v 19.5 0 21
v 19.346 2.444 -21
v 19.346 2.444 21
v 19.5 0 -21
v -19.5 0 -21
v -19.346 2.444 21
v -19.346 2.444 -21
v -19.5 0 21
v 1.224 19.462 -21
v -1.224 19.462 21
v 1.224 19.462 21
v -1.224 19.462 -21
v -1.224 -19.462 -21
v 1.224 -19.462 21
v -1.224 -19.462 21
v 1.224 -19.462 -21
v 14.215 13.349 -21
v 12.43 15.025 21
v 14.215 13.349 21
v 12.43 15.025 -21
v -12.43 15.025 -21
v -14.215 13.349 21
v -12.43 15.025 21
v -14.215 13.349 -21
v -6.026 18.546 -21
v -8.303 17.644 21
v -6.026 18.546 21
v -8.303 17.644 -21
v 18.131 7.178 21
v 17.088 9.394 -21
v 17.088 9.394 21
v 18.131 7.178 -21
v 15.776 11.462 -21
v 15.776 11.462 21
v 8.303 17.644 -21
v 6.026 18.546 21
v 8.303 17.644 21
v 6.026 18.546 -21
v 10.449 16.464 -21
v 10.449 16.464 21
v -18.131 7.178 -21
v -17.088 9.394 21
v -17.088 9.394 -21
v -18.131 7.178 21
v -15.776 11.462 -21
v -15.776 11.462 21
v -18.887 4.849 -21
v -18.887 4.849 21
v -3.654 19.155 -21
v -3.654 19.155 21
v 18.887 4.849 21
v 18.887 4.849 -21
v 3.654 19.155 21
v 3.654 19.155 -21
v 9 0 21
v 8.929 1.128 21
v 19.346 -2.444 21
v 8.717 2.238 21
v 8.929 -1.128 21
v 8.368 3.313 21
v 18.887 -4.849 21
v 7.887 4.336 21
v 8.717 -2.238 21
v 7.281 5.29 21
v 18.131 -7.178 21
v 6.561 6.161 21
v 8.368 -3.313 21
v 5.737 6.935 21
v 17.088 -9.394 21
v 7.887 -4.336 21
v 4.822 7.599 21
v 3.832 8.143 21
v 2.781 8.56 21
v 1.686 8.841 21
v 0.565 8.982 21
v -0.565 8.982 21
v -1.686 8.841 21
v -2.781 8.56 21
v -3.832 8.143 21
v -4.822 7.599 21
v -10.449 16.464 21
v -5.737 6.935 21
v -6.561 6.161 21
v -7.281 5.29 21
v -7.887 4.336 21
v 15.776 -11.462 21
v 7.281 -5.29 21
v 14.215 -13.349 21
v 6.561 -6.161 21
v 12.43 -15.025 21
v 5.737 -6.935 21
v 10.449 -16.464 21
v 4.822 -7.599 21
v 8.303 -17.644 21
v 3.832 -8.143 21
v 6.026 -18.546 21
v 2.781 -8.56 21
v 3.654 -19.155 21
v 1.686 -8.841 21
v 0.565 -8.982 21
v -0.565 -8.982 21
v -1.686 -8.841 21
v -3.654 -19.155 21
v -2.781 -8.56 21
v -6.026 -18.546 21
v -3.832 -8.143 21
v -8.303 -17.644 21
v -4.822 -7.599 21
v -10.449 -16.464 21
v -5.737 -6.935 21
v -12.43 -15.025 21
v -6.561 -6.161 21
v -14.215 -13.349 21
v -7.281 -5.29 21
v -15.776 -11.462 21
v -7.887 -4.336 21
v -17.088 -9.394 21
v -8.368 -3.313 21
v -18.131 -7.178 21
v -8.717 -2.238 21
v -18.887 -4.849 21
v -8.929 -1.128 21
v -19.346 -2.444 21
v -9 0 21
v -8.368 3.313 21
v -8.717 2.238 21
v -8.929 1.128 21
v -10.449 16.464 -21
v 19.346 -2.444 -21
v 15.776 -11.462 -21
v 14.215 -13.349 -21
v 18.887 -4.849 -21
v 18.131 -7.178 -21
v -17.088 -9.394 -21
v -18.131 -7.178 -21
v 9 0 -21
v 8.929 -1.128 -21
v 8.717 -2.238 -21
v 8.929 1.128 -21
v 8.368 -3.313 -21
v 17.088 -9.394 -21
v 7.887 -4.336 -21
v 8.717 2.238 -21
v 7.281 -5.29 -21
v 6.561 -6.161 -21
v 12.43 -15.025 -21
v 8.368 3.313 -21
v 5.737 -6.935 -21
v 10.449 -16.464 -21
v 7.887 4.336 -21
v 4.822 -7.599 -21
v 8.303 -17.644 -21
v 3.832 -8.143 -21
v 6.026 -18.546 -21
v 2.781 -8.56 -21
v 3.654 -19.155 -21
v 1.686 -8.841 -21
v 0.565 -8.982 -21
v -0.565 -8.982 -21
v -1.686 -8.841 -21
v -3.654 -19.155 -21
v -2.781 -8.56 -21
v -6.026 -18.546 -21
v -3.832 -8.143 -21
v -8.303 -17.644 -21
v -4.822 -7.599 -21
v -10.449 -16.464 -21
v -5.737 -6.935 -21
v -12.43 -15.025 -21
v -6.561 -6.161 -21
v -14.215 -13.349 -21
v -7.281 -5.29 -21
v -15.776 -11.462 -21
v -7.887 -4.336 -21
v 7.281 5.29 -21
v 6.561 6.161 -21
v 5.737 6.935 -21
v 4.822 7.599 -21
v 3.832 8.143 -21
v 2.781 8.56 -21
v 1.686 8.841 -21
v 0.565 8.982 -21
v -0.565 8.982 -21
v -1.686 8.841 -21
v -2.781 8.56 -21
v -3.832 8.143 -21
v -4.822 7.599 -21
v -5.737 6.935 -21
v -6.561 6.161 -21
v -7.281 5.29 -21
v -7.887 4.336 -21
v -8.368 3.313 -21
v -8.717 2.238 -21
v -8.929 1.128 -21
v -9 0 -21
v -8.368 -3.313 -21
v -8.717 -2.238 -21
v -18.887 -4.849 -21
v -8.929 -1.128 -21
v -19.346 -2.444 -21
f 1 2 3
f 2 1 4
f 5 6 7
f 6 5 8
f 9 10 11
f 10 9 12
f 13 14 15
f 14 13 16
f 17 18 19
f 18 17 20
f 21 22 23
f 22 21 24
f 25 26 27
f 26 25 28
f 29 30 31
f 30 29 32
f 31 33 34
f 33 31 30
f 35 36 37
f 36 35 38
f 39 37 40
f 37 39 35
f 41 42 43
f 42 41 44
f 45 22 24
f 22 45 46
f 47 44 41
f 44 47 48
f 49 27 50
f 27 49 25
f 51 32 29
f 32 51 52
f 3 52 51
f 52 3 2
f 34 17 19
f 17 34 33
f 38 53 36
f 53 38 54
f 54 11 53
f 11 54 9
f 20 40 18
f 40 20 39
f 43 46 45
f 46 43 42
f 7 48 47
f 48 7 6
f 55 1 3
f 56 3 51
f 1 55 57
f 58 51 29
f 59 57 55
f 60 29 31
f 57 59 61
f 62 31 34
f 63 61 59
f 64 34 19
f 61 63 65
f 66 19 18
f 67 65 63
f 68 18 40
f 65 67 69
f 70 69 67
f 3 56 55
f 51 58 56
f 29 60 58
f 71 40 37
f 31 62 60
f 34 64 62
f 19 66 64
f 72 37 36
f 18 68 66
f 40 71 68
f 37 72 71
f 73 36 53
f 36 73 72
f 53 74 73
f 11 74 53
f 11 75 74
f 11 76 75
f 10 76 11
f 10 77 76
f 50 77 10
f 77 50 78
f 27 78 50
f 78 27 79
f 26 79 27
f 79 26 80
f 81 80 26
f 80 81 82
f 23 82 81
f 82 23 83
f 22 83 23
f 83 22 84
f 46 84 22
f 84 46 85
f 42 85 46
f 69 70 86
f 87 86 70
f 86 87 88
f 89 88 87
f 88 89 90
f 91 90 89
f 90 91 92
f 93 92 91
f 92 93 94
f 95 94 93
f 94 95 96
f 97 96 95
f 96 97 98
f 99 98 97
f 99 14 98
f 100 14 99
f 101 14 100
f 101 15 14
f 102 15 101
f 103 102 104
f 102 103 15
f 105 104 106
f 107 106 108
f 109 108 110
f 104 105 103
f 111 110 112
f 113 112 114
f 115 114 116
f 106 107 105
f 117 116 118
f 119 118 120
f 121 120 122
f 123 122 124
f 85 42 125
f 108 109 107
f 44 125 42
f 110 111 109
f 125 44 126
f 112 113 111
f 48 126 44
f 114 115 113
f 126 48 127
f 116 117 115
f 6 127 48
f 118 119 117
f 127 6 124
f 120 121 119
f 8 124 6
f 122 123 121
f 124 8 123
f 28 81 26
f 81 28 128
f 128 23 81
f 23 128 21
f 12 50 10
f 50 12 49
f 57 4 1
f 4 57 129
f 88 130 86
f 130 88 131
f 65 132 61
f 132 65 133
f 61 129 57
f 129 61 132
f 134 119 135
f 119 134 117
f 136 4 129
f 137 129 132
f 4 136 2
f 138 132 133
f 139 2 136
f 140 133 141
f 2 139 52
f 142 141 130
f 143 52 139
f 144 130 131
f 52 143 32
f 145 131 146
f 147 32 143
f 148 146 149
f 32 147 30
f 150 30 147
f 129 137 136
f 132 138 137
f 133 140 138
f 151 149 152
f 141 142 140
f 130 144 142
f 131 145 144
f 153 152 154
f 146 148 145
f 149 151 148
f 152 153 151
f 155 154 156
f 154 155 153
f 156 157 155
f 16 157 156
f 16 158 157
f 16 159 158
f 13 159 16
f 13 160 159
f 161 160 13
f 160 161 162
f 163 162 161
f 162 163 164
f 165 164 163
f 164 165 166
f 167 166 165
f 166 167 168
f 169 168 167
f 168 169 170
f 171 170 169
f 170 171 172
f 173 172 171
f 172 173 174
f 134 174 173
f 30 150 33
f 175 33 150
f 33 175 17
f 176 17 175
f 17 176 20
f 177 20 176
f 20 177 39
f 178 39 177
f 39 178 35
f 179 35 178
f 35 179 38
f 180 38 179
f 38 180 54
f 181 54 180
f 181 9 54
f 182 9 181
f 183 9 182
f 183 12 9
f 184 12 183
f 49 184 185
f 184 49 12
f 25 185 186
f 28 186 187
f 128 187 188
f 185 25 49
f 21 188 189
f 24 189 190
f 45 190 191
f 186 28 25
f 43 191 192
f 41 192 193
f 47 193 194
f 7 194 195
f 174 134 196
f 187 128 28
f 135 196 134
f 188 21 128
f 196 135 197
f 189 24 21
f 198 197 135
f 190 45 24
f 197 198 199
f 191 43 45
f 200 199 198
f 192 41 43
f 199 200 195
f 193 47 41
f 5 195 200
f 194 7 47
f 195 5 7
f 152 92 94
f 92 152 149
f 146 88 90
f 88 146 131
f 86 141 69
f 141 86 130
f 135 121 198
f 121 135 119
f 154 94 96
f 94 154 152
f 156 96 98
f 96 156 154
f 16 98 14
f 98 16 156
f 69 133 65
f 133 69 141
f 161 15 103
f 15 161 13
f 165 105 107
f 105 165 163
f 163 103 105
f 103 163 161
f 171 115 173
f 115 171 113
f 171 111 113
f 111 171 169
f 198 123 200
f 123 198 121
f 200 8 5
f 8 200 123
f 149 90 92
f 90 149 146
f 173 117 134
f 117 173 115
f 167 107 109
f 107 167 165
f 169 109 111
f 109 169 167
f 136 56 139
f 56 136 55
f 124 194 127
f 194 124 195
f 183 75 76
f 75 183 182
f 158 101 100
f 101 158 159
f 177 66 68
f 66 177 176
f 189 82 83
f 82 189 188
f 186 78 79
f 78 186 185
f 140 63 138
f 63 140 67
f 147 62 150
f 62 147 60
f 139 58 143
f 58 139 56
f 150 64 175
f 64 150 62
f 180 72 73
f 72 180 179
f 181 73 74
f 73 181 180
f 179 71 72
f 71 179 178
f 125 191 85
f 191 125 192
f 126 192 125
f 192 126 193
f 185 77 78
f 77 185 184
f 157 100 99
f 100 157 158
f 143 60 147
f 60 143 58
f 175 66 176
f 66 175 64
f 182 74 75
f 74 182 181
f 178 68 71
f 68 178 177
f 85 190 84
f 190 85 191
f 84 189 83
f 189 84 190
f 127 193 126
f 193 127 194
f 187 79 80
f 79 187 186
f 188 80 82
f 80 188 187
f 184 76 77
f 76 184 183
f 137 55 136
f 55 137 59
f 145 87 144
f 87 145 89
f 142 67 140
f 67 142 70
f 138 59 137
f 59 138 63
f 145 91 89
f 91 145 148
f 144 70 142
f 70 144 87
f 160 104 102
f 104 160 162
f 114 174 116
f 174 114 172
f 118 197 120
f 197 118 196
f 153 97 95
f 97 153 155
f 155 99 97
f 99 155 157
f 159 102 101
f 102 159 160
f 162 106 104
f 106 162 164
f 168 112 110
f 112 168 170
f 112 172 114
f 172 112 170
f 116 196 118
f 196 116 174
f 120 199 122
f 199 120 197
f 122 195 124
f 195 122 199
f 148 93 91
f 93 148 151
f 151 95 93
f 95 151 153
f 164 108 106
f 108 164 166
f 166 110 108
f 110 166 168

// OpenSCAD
$fn = 50;


difference() {
	union() {
		translate(v = [0, 0, -21.0000000000]) {
			cylinder(h = 42, r = 19.5000000000);
		}
	}
	union() {
		translate(v = [0, 0, -100.0000000000]) {
			cylinder(h = 200, r = 9);
		}
	}
}
